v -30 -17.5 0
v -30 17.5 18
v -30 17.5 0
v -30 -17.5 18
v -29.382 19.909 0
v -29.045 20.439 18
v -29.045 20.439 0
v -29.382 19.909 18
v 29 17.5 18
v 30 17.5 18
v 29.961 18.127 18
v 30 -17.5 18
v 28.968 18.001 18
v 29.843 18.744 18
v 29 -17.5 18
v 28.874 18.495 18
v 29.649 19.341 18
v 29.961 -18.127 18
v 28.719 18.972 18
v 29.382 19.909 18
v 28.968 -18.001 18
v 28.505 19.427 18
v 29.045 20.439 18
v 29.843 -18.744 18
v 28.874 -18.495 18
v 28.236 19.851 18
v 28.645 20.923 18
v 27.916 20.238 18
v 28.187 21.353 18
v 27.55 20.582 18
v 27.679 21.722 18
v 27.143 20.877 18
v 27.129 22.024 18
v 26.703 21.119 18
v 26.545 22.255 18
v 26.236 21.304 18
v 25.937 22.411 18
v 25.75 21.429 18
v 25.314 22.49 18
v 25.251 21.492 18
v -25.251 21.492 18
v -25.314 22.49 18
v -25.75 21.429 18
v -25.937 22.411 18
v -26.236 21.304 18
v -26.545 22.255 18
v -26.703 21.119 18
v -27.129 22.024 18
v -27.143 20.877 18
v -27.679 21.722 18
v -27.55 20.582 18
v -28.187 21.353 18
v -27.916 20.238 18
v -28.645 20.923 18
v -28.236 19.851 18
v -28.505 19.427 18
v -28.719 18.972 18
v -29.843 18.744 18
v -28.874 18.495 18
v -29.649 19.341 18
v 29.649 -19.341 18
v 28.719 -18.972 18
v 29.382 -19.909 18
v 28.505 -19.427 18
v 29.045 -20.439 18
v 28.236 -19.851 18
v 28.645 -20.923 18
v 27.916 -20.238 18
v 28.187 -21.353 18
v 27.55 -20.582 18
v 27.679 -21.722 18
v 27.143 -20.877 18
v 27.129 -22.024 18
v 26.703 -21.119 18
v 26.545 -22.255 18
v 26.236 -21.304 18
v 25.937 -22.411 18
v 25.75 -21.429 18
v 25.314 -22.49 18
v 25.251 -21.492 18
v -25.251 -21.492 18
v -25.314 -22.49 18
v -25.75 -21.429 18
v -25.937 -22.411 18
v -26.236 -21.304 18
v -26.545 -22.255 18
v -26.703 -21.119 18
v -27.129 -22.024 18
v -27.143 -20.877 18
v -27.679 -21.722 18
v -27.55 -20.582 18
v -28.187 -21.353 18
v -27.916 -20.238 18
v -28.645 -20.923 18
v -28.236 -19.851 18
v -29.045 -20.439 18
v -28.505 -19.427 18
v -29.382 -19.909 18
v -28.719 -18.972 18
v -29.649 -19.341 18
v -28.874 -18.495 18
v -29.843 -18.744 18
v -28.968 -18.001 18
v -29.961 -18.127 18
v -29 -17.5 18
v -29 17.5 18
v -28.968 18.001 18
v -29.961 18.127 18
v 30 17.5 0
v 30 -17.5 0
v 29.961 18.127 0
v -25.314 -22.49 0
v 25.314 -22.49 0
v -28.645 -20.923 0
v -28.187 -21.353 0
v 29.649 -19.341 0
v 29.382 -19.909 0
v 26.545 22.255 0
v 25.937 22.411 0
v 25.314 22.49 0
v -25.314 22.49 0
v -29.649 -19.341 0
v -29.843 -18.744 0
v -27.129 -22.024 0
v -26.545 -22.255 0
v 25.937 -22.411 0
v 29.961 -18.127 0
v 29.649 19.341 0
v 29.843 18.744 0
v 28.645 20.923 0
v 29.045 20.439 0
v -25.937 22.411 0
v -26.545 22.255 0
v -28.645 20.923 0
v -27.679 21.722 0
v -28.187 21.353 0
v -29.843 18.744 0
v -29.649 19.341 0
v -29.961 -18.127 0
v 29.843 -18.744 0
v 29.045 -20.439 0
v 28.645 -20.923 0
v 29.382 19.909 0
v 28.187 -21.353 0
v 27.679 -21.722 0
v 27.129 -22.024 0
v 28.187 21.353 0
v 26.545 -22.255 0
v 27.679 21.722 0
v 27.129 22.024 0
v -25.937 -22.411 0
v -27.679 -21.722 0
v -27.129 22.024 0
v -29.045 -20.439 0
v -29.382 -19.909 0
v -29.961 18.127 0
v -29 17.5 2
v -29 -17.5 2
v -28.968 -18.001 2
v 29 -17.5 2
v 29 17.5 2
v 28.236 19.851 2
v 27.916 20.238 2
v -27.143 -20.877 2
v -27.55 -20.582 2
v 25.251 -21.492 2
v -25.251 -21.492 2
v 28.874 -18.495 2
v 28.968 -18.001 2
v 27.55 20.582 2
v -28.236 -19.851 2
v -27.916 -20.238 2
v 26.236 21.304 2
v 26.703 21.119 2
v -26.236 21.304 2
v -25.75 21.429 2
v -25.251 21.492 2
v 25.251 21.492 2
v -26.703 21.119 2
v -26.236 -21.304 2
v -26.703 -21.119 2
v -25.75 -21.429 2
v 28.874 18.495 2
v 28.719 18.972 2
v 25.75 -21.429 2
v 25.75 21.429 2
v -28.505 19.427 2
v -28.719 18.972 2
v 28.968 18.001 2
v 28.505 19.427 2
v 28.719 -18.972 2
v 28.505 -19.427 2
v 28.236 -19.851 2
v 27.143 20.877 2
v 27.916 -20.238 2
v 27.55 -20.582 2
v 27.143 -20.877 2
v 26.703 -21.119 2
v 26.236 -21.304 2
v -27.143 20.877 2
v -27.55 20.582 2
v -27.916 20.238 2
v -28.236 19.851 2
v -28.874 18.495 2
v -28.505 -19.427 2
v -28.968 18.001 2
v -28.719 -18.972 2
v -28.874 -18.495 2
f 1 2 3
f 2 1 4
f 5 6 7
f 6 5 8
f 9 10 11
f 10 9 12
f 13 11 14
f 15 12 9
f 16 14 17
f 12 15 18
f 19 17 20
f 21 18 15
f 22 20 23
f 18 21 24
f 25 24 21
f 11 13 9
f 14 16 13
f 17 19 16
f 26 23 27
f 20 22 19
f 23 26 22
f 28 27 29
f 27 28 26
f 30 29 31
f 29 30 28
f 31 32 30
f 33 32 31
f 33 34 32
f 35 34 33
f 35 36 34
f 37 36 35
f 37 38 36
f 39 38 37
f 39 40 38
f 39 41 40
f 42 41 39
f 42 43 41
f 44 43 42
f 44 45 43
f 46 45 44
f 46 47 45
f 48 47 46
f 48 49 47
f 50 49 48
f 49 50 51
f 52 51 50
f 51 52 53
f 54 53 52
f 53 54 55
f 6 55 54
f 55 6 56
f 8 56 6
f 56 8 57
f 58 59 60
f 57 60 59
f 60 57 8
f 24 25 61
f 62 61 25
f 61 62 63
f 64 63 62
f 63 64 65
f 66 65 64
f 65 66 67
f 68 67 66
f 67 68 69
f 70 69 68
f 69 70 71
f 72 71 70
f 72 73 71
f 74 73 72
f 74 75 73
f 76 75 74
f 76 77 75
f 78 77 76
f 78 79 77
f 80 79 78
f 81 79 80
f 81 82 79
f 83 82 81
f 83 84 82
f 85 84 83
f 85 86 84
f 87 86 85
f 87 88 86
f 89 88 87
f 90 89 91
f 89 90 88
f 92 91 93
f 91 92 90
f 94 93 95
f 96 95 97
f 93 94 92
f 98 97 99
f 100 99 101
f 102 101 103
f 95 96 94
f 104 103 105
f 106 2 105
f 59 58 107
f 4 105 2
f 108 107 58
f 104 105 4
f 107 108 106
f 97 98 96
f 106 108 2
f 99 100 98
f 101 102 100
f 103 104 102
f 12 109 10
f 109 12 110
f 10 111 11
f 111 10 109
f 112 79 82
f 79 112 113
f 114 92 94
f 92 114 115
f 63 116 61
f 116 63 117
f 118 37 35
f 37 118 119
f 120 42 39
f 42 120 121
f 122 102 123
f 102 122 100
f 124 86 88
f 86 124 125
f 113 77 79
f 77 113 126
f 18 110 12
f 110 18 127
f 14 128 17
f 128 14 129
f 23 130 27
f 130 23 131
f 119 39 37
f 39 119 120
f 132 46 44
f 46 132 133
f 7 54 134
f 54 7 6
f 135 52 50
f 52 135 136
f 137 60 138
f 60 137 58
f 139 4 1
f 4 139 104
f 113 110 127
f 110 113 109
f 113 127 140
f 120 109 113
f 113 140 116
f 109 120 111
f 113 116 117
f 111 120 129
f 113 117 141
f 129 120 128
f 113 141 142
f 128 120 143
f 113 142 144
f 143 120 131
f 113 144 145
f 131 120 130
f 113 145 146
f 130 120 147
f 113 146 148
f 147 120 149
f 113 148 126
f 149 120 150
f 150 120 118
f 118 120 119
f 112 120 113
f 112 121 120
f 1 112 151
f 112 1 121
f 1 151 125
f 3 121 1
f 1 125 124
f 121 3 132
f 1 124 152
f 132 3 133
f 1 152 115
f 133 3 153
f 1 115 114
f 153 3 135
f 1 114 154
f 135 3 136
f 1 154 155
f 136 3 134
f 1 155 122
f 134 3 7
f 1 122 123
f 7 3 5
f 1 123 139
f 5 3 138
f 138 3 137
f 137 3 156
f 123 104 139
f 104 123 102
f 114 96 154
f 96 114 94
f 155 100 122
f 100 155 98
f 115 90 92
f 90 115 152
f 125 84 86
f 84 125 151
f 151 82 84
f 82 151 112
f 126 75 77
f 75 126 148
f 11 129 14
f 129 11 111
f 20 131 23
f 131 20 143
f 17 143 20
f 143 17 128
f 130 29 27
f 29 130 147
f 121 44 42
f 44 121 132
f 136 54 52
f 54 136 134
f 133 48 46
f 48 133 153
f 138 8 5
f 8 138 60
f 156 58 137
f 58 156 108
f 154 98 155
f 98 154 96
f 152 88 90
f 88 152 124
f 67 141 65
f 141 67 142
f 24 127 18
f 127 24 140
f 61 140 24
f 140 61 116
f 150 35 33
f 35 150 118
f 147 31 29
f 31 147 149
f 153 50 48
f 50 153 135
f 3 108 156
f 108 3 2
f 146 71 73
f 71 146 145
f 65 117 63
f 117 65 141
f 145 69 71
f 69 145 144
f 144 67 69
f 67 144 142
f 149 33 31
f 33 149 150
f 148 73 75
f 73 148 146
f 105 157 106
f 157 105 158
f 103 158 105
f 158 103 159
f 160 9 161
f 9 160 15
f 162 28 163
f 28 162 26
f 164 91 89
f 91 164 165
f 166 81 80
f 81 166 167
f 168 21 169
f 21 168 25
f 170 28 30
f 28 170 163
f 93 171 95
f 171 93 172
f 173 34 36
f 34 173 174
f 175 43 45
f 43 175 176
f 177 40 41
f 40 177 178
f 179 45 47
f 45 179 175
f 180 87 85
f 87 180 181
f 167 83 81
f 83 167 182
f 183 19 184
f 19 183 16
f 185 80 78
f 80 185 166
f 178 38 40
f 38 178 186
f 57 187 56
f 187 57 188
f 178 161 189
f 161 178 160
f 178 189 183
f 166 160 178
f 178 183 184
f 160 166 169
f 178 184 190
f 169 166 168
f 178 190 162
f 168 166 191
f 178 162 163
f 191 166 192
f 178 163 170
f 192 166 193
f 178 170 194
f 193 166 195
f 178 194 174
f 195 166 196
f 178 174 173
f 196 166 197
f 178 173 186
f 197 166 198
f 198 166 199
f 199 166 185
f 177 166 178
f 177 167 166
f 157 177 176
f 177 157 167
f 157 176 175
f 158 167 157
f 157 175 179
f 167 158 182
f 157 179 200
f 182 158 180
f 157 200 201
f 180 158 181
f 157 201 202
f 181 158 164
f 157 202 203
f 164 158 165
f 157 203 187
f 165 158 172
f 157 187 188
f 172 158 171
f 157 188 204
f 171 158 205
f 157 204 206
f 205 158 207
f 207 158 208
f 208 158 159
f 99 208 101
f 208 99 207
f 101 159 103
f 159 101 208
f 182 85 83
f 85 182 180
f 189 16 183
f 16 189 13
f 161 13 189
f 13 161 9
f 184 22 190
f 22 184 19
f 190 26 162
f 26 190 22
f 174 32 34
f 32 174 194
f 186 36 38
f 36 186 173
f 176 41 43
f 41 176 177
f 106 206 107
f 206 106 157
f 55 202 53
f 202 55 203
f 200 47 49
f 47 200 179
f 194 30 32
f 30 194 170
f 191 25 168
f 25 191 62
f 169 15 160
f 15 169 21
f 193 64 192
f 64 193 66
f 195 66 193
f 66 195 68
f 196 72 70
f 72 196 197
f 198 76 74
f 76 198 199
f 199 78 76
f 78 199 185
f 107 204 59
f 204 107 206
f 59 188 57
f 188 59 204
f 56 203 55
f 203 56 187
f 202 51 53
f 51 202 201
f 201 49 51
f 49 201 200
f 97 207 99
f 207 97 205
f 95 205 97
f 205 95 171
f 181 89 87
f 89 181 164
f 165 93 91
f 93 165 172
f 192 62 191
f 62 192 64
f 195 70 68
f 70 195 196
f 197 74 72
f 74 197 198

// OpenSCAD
$fn = 50;


difference() {
	union() {
		hull() {
			translate(v = [-25.0000000000, 17.5000000000, 0]) {
				cylinder(h = 18, r = 5);
			}
			translate(v = [25.0000000000, 17.5000000000, 0]) {
				cylinder(h = 18, r = 5);
			}
			translate(v = [-25.0000000000, -17.5000000000, 0]) {
				cylinder(h = 18, r = 5);
			}
			translate(v = [25.0000000000, -17.5000000000, 0]) {
				cylinder(h = 18, r = 5);
			}
		}
	}
	union() {
		translate(v = [0, 0, 2]) {
			#hull() {
				translate(v = [-25.0000000000, 17.5000000000, 0]) {
					cylinder(h = 16, r = 4);
				}
				translate(v = [25.0000000000, 17.5000000000, 0]) {
					cylinder(h = 16, r = 4);
				}
				translate(v = [-25.0000000000, -17.5000000000, 0]) {
					cylinder(h = 16, r = 4);
				}
				translate(v = [25.0000000000, -17.5000000000, 0]) {
					cylinder(h = 16, r = 4);
				}
			}
		}
	}
}
